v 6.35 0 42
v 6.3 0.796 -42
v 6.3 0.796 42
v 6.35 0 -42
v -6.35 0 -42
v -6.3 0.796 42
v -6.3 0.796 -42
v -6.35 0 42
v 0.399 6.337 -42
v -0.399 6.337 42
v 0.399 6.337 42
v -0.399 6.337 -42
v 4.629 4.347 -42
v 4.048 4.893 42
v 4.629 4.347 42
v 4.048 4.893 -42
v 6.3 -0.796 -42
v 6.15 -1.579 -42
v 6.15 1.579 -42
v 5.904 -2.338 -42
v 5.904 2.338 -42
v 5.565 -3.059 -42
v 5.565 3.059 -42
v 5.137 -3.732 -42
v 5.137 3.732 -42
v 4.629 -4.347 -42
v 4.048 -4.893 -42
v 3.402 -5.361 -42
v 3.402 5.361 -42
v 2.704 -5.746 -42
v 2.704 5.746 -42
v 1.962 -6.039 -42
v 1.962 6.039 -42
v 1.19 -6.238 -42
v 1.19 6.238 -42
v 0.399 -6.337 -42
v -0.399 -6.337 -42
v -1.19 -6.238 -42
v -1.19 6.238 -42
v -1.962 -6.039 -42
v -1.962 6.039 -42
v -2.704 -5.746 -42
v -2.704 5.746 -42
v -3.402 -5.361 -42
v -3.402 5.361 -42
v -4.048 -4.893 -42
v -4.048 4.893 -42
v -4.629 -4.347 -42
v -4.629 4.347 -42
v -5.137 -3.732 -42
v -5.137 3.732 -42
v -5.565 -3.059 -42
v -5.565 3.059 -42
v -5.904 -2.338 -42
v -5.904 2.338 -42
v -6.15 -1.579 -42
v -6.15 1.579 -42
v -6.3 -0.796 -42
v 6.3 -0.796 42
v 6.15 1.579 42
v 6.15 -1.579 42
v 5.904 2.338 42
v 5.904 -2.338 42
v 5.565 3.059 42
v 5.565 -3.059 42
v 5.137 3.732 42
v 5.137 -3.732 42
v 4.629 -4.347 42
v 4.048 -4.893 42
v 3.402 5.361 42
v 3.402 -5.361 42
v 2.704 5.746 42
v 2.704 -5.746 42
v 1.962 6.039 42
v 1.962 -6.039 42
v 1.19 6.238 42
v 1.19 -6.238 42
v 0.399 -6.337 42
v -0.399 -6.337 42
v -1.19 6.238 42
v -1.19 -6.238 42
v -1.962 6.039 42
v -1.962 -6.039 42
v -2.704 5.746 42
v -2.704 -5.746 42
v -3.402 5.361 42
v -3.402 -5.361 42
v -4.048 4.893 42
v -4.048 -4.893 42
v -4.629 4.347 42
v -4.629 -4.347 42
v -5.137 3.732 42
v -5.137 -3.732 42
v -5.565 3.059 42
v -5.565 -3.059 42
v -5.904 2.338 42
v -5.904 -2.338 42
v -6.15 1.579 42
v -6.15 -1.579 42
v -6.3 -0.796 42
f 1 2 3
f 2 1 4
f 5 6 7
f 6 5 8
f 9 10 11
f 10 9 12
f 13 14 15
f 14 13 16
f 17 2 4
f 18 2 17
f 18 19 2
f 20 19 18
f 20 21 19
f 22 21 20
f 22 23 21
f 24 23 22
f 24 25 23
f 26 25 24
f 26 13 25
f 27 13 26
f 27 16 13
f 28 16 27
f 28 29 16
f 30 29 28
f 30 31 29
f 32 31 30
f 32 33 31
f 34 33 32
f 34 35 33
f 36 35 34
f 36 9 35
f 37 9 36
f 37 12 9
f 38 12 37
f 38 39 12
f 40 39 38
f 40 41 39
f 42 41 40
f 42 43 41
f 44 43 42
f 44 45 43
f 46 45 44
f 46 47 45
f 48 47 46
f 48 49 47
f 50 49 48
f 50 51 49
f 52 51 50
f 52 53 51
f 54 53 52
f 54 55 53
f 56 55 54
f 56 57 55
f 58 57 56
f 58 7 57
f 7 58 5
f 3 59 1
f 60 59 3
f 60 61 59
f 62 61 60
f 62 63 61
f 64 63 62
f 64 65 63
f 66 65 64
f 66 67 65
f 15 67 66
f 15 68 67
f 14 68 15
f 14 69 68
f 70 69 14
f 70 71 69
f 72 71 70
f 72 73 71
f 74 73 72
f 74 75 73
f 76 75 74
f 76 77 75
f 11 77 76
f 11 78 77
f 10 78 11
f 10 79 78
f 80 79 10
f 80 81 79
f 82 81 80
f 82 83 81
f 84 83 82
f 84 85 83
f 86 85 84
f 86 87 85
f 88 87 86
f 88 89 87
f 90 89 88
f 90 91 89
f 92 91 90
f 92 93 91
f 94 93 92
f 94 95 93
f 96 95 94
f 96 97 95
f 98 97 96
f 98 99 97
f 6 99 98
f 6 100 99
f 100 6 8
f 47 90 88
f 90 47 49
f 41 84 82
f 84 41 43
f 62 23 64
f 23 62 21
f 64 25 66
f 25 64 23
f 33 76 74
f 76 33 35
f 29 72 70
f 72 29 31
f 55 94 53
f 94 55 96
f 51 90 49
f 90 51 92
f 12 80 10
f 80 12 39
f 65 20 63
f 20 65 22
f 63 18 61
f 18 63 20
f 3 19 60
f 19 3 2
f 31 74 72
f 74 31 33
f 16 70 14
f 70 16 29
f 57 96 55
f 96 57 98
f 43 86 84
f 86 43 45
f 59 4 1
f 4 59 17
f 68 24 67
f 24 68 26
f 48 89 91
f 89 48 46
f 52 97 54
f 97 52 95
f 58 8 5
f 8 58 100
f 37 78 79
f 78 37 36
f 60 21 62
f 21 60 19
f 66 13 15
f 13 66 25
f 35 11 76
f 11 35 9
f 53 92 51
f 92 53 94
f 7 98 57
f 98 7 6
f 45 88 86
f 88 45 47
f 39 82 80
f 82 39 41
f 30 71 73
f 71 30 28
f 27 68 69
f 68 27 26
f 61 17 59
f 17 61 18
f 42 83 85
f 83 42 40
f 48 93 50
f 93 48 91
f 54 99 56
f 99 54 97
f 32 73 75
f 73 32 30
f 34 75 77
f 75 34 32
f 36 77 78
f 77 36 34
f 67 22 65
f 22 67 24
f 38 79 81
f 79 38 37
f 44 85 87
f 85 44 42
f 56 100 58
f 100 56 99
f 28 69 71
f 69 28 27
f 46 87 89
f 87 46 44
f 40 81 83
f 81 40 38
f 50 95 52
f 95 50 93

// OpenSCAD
$fn = 50;


difference() {
	union() {
		translate(v = [0, 0, -42.0000000000]) {
			cylinder(h = 84, r = 6.3500000000);
		}
	}
	union() {
		translate(v = [0, 0, -100.0000000000]) {
			cylinder(h = 200, r = 0);
		}
	}
}
